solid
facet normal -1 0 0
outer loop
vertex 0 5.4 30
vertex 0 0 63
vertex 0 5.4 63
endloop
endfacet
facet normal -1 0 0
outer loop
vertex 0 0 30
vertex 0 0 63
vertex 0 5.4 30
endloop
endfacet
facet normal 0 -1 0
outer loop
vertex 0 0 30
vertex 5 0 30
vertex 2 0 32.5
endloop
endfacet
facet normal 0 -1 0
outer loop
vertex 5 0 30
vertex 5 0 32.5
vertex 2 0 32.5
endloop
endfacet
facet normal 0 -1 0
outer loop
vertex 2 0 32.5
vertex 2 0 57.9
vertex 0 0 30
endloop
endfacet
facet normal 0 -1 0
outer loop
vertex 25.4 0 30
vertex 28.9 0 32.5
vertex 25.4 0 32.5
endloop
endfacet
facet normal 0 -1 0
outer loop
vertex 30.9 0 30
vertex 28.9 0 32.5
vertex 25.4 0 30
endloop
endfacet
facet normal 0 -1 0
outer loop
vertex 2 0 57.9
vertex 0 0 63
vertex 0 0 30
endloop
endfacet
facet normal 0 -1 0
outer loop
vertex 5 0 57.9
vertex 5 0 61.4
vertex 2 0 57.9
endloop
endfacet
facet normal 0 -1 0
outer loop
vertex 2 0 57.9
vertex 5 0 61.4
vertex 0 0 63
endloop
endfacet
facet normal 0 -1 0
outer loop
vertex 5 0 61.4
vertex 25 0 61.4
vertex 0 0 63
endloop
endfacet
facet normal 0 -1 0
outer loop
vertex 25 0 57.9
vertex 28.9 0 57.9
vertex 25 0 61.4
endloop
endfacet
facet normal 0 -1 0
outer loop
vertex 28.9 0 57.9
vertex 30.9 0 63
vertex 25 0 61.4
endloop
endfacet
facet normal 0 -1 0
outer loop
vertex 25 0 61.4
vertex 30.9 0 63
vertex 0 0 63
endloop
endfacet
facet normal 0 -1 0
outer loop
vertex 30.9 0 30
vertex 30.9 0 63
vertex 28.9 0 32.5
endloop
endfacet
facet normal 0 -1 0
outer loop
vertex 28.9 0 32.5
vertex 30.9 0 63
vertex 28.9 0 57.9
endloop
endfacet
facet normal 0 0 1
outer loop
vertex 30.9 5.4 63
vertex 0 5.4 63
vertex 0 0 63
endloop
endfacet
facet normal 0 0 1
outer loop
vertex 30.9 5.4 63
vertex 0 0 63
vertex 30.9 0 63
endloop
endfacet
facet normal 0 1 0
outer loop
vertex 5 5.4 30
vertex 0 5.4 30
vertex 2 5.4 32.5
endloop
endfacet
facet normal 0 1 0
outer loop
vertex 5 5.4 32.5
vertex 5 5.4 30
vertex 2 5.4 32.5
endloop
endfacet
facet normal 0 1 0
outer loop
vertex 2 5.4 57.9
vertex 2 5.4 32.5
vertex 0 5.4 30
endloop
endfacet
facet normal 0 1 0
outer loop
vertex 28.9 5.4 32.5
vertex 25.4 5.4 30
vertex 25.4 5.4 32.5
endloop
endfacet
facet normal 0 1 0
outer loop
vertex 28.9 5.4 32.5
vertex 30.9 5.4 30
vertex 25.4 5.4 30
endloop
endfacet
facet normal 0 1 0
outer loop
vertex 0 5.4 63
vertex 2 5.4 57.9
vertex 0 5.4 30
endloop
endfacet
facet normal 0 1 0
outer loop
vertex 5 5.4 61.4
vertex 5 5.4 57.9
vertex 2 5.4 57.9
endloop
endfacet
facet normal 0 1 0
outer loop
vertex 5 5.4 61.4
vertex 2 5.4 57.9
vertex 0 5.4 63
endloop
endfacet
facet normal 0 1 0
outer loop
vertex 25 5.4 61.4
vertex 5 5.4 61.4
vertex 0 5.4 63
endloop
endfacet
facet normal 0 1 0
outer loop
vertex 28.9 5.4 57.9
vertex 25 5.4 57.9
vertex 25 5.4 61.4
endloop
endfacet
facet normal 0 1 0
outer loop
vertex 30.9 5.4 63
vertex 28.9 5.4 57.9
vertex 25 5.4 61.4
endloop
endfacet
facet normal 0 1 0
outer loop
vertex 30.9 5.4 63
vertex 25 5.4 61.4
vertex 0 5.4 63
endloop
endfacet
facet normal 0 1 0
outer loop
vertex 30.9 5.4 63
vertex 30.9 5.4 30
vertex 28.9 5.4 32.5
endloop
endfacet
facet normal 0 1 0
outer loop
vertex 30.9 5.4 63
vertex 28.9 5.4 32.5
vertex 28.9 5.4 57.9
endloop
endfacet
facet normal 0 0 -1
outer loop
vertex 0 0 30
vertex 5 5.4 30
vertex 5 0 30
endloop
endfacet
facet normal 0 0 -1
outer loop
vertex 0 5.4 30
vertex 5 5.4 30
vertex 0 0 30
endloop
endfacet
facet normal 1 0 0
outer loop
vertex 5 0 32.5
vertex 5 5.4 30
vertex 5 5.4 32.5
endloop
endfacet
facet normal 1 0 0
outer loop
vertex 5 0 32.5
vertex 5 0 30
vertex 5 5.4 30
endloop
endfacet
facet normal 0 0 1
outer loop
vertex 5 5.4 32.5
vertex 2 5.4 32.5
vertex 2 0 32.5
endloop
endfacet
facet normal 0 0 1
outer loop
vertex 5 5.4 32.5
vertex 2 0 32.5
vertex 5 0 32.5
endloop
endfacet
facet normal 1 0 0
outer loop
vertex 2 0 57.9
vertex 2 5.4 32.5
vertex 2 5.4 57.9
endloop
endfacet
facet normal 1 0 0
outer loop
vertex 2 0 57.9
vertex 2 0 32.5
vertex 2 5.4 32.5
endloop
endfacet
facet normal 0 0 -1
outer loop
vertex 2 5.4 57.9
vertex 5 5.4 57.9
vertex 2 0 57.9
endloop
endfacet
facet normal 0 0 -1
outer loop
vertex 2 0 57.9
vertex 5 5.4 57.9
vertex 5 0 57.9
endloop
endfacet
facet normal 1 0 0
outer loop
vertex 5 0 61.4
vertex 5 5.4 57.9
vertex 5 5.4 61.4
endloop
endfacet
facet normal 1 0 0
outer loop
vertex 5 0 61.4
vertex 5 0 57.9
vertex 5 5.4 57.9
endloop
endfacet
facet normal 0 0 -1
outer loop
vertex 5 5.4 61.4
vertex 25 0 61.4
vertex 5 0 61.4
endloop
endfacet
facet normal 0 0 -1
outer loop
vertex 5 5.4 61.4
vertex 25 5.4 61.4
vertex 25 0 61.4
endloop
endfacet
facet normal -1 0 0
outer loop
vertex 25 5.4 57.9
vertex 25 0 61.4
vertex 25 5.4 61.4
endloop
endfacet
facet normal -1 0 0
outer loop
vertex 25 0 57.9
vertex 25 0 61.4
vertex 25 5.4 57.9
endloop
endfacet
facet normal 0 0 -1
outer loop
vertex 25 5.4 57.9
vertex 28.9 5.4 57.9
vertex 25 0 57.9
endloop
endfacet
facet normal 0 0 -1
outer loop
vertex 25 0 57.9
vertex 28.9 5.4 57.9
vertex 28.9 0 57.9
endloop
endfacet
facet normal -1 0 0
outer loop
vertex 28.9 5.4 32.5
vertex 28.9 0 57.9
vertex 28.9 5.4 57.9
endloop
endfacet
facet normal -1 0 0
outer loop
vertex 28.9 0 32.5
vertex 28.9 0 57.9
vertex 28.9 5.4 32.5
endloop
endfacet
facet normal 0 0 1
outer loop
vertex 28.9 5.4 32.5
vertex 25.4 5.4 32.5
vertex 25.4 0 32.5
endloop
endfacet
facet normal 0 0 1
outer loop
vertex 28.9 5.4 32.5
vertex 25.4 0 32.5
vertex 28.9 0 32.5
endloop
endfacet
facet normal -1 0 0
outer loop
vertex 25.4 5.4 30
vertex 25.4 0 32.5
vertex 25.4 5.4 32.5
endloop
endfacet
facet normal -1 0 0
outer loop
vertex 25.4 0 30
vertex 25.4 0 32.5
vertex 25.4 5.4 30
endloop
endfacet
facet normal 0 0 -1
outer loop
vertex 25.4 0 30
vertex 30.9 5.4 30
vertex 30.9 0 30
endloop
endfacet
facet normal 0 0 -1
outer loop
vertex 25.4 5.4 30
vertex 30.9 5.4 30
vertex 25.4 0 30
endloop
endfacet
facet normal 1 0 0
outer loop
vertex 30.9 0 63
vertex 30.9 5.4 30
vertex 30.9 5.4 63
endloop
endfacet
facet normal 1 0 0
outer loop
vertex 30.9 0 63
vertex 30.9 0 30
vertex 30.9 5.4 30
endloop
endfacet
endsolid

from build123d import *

# Parameters (mm, degrees)
BOX003_W     = 20
BOX003_H     = 26
BOX003_DEPTH = 3.5
BOX002_W     = 20.4
BOX002_H     = 25.4
BOX002_DEPTH = 10
BOX001_W     = 26.9
BOX001_H     = 26
BOX001_DEPTH = 25.4
BOX_W        = 30.9
BOX_H        = 5.4
BOX_DEPTH    = 33


with BuildPart() as cableslot:
    # Box003 → Box003 (new body)
    with BuildSketch(Plane(origin=(5, 0, 27.9), x_dir=(1, 0, 0), z_dir=(0, 0, 1))):
        with Locations((10, 13)):
            Rectangle(BOX003_W, BOX003_H)
    extrude(amount=BOX003_DEPTH)


with BuildPart() as gap:
    # Box002 → Box002 (new body)
    with BuildSketch(Plane(origin=(5, 0, 0), x_dir=(1, 0, 0), z_dir=(0, 0, 1))):
        with Locations((10.2, 12.7)):
            Rectangle(BOX002_W, BOX002_H)
    extrude(amount=BOX002_DEPTH)


with BuildPart() as bar:
    # Box001 → Box001 (new body)
    with BuildSketch(Plane(origin=(2, 0, 2.5), x_dir=(1, 0, 0), z_dir=(0, 0, 1))):
        with Locations((13.45, 13)):
            Rectangle(BOX001_W, BOX001_H)
    extrude(amount=BOX001_DEPTH)


with BuildPart() as cut002:
    # Box → Box (new body)
    with BuildSketch(Plane.XY):
        with Locations((15.45, 2.7)):
            Rectangle(BOX_W, BOX_H)
    extrude(amount=BOX_DEPTH)

    # Cut: cut Bar
    add(bar.part, mode=Mode.SUBTRACT)

    # Cut001: cut Gap
    add(gap.part, mode=Mode.SUBTRACT)

    # Cut002: cut CableSlot
    add(cableslot.part, mode=Mode.SUBTRACT)


with BuildPart() as cut002_1:
    # Cut002 placement: moved
    add(cut002.part.moved(Location((0, 0, 30))))


solid = cut002_1.part
